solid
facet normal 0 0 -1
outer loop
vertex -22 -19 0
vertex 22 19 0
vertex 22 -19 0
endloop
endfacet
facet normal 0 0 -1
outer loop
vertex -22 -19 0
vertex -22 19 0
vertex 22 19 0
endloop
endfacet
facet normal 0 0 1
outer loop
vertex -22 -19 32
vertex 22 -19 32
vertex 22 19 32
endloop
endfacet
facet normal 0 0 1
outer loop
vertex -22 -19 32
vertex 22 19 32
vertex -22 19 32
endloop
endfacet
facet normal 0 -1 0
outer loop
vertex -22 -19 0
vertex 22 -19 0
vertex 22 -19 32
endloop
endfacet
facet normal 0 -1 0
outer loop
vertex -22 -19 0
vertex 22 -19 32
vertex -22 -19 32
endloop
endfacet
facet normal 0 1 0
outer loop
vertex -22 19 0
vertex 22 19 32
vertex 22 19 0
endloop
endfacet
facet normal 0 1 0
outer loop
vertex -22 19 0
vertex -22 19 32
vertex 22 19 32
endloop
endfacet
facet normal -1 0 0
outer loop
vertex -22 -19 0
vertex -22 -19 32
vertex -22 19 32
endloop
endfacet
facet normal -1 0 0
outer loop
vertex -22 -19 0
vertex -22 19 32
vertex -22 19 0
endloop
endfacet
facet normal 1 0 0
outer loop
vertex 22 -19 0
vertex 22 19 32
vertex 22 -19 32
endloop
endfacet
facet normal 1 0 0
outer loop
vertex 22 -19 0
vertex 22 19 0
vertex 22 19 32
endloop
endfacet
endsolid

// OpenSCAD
// Gemini 4 Argon Parametric OpenSCAD — PRT-06: T8 Leadscrew Pipette Plunger Actuation Escapement
$fn = 64;
translate([-22.00, -19.00, 0])
  cube([44, 38, 32]);
